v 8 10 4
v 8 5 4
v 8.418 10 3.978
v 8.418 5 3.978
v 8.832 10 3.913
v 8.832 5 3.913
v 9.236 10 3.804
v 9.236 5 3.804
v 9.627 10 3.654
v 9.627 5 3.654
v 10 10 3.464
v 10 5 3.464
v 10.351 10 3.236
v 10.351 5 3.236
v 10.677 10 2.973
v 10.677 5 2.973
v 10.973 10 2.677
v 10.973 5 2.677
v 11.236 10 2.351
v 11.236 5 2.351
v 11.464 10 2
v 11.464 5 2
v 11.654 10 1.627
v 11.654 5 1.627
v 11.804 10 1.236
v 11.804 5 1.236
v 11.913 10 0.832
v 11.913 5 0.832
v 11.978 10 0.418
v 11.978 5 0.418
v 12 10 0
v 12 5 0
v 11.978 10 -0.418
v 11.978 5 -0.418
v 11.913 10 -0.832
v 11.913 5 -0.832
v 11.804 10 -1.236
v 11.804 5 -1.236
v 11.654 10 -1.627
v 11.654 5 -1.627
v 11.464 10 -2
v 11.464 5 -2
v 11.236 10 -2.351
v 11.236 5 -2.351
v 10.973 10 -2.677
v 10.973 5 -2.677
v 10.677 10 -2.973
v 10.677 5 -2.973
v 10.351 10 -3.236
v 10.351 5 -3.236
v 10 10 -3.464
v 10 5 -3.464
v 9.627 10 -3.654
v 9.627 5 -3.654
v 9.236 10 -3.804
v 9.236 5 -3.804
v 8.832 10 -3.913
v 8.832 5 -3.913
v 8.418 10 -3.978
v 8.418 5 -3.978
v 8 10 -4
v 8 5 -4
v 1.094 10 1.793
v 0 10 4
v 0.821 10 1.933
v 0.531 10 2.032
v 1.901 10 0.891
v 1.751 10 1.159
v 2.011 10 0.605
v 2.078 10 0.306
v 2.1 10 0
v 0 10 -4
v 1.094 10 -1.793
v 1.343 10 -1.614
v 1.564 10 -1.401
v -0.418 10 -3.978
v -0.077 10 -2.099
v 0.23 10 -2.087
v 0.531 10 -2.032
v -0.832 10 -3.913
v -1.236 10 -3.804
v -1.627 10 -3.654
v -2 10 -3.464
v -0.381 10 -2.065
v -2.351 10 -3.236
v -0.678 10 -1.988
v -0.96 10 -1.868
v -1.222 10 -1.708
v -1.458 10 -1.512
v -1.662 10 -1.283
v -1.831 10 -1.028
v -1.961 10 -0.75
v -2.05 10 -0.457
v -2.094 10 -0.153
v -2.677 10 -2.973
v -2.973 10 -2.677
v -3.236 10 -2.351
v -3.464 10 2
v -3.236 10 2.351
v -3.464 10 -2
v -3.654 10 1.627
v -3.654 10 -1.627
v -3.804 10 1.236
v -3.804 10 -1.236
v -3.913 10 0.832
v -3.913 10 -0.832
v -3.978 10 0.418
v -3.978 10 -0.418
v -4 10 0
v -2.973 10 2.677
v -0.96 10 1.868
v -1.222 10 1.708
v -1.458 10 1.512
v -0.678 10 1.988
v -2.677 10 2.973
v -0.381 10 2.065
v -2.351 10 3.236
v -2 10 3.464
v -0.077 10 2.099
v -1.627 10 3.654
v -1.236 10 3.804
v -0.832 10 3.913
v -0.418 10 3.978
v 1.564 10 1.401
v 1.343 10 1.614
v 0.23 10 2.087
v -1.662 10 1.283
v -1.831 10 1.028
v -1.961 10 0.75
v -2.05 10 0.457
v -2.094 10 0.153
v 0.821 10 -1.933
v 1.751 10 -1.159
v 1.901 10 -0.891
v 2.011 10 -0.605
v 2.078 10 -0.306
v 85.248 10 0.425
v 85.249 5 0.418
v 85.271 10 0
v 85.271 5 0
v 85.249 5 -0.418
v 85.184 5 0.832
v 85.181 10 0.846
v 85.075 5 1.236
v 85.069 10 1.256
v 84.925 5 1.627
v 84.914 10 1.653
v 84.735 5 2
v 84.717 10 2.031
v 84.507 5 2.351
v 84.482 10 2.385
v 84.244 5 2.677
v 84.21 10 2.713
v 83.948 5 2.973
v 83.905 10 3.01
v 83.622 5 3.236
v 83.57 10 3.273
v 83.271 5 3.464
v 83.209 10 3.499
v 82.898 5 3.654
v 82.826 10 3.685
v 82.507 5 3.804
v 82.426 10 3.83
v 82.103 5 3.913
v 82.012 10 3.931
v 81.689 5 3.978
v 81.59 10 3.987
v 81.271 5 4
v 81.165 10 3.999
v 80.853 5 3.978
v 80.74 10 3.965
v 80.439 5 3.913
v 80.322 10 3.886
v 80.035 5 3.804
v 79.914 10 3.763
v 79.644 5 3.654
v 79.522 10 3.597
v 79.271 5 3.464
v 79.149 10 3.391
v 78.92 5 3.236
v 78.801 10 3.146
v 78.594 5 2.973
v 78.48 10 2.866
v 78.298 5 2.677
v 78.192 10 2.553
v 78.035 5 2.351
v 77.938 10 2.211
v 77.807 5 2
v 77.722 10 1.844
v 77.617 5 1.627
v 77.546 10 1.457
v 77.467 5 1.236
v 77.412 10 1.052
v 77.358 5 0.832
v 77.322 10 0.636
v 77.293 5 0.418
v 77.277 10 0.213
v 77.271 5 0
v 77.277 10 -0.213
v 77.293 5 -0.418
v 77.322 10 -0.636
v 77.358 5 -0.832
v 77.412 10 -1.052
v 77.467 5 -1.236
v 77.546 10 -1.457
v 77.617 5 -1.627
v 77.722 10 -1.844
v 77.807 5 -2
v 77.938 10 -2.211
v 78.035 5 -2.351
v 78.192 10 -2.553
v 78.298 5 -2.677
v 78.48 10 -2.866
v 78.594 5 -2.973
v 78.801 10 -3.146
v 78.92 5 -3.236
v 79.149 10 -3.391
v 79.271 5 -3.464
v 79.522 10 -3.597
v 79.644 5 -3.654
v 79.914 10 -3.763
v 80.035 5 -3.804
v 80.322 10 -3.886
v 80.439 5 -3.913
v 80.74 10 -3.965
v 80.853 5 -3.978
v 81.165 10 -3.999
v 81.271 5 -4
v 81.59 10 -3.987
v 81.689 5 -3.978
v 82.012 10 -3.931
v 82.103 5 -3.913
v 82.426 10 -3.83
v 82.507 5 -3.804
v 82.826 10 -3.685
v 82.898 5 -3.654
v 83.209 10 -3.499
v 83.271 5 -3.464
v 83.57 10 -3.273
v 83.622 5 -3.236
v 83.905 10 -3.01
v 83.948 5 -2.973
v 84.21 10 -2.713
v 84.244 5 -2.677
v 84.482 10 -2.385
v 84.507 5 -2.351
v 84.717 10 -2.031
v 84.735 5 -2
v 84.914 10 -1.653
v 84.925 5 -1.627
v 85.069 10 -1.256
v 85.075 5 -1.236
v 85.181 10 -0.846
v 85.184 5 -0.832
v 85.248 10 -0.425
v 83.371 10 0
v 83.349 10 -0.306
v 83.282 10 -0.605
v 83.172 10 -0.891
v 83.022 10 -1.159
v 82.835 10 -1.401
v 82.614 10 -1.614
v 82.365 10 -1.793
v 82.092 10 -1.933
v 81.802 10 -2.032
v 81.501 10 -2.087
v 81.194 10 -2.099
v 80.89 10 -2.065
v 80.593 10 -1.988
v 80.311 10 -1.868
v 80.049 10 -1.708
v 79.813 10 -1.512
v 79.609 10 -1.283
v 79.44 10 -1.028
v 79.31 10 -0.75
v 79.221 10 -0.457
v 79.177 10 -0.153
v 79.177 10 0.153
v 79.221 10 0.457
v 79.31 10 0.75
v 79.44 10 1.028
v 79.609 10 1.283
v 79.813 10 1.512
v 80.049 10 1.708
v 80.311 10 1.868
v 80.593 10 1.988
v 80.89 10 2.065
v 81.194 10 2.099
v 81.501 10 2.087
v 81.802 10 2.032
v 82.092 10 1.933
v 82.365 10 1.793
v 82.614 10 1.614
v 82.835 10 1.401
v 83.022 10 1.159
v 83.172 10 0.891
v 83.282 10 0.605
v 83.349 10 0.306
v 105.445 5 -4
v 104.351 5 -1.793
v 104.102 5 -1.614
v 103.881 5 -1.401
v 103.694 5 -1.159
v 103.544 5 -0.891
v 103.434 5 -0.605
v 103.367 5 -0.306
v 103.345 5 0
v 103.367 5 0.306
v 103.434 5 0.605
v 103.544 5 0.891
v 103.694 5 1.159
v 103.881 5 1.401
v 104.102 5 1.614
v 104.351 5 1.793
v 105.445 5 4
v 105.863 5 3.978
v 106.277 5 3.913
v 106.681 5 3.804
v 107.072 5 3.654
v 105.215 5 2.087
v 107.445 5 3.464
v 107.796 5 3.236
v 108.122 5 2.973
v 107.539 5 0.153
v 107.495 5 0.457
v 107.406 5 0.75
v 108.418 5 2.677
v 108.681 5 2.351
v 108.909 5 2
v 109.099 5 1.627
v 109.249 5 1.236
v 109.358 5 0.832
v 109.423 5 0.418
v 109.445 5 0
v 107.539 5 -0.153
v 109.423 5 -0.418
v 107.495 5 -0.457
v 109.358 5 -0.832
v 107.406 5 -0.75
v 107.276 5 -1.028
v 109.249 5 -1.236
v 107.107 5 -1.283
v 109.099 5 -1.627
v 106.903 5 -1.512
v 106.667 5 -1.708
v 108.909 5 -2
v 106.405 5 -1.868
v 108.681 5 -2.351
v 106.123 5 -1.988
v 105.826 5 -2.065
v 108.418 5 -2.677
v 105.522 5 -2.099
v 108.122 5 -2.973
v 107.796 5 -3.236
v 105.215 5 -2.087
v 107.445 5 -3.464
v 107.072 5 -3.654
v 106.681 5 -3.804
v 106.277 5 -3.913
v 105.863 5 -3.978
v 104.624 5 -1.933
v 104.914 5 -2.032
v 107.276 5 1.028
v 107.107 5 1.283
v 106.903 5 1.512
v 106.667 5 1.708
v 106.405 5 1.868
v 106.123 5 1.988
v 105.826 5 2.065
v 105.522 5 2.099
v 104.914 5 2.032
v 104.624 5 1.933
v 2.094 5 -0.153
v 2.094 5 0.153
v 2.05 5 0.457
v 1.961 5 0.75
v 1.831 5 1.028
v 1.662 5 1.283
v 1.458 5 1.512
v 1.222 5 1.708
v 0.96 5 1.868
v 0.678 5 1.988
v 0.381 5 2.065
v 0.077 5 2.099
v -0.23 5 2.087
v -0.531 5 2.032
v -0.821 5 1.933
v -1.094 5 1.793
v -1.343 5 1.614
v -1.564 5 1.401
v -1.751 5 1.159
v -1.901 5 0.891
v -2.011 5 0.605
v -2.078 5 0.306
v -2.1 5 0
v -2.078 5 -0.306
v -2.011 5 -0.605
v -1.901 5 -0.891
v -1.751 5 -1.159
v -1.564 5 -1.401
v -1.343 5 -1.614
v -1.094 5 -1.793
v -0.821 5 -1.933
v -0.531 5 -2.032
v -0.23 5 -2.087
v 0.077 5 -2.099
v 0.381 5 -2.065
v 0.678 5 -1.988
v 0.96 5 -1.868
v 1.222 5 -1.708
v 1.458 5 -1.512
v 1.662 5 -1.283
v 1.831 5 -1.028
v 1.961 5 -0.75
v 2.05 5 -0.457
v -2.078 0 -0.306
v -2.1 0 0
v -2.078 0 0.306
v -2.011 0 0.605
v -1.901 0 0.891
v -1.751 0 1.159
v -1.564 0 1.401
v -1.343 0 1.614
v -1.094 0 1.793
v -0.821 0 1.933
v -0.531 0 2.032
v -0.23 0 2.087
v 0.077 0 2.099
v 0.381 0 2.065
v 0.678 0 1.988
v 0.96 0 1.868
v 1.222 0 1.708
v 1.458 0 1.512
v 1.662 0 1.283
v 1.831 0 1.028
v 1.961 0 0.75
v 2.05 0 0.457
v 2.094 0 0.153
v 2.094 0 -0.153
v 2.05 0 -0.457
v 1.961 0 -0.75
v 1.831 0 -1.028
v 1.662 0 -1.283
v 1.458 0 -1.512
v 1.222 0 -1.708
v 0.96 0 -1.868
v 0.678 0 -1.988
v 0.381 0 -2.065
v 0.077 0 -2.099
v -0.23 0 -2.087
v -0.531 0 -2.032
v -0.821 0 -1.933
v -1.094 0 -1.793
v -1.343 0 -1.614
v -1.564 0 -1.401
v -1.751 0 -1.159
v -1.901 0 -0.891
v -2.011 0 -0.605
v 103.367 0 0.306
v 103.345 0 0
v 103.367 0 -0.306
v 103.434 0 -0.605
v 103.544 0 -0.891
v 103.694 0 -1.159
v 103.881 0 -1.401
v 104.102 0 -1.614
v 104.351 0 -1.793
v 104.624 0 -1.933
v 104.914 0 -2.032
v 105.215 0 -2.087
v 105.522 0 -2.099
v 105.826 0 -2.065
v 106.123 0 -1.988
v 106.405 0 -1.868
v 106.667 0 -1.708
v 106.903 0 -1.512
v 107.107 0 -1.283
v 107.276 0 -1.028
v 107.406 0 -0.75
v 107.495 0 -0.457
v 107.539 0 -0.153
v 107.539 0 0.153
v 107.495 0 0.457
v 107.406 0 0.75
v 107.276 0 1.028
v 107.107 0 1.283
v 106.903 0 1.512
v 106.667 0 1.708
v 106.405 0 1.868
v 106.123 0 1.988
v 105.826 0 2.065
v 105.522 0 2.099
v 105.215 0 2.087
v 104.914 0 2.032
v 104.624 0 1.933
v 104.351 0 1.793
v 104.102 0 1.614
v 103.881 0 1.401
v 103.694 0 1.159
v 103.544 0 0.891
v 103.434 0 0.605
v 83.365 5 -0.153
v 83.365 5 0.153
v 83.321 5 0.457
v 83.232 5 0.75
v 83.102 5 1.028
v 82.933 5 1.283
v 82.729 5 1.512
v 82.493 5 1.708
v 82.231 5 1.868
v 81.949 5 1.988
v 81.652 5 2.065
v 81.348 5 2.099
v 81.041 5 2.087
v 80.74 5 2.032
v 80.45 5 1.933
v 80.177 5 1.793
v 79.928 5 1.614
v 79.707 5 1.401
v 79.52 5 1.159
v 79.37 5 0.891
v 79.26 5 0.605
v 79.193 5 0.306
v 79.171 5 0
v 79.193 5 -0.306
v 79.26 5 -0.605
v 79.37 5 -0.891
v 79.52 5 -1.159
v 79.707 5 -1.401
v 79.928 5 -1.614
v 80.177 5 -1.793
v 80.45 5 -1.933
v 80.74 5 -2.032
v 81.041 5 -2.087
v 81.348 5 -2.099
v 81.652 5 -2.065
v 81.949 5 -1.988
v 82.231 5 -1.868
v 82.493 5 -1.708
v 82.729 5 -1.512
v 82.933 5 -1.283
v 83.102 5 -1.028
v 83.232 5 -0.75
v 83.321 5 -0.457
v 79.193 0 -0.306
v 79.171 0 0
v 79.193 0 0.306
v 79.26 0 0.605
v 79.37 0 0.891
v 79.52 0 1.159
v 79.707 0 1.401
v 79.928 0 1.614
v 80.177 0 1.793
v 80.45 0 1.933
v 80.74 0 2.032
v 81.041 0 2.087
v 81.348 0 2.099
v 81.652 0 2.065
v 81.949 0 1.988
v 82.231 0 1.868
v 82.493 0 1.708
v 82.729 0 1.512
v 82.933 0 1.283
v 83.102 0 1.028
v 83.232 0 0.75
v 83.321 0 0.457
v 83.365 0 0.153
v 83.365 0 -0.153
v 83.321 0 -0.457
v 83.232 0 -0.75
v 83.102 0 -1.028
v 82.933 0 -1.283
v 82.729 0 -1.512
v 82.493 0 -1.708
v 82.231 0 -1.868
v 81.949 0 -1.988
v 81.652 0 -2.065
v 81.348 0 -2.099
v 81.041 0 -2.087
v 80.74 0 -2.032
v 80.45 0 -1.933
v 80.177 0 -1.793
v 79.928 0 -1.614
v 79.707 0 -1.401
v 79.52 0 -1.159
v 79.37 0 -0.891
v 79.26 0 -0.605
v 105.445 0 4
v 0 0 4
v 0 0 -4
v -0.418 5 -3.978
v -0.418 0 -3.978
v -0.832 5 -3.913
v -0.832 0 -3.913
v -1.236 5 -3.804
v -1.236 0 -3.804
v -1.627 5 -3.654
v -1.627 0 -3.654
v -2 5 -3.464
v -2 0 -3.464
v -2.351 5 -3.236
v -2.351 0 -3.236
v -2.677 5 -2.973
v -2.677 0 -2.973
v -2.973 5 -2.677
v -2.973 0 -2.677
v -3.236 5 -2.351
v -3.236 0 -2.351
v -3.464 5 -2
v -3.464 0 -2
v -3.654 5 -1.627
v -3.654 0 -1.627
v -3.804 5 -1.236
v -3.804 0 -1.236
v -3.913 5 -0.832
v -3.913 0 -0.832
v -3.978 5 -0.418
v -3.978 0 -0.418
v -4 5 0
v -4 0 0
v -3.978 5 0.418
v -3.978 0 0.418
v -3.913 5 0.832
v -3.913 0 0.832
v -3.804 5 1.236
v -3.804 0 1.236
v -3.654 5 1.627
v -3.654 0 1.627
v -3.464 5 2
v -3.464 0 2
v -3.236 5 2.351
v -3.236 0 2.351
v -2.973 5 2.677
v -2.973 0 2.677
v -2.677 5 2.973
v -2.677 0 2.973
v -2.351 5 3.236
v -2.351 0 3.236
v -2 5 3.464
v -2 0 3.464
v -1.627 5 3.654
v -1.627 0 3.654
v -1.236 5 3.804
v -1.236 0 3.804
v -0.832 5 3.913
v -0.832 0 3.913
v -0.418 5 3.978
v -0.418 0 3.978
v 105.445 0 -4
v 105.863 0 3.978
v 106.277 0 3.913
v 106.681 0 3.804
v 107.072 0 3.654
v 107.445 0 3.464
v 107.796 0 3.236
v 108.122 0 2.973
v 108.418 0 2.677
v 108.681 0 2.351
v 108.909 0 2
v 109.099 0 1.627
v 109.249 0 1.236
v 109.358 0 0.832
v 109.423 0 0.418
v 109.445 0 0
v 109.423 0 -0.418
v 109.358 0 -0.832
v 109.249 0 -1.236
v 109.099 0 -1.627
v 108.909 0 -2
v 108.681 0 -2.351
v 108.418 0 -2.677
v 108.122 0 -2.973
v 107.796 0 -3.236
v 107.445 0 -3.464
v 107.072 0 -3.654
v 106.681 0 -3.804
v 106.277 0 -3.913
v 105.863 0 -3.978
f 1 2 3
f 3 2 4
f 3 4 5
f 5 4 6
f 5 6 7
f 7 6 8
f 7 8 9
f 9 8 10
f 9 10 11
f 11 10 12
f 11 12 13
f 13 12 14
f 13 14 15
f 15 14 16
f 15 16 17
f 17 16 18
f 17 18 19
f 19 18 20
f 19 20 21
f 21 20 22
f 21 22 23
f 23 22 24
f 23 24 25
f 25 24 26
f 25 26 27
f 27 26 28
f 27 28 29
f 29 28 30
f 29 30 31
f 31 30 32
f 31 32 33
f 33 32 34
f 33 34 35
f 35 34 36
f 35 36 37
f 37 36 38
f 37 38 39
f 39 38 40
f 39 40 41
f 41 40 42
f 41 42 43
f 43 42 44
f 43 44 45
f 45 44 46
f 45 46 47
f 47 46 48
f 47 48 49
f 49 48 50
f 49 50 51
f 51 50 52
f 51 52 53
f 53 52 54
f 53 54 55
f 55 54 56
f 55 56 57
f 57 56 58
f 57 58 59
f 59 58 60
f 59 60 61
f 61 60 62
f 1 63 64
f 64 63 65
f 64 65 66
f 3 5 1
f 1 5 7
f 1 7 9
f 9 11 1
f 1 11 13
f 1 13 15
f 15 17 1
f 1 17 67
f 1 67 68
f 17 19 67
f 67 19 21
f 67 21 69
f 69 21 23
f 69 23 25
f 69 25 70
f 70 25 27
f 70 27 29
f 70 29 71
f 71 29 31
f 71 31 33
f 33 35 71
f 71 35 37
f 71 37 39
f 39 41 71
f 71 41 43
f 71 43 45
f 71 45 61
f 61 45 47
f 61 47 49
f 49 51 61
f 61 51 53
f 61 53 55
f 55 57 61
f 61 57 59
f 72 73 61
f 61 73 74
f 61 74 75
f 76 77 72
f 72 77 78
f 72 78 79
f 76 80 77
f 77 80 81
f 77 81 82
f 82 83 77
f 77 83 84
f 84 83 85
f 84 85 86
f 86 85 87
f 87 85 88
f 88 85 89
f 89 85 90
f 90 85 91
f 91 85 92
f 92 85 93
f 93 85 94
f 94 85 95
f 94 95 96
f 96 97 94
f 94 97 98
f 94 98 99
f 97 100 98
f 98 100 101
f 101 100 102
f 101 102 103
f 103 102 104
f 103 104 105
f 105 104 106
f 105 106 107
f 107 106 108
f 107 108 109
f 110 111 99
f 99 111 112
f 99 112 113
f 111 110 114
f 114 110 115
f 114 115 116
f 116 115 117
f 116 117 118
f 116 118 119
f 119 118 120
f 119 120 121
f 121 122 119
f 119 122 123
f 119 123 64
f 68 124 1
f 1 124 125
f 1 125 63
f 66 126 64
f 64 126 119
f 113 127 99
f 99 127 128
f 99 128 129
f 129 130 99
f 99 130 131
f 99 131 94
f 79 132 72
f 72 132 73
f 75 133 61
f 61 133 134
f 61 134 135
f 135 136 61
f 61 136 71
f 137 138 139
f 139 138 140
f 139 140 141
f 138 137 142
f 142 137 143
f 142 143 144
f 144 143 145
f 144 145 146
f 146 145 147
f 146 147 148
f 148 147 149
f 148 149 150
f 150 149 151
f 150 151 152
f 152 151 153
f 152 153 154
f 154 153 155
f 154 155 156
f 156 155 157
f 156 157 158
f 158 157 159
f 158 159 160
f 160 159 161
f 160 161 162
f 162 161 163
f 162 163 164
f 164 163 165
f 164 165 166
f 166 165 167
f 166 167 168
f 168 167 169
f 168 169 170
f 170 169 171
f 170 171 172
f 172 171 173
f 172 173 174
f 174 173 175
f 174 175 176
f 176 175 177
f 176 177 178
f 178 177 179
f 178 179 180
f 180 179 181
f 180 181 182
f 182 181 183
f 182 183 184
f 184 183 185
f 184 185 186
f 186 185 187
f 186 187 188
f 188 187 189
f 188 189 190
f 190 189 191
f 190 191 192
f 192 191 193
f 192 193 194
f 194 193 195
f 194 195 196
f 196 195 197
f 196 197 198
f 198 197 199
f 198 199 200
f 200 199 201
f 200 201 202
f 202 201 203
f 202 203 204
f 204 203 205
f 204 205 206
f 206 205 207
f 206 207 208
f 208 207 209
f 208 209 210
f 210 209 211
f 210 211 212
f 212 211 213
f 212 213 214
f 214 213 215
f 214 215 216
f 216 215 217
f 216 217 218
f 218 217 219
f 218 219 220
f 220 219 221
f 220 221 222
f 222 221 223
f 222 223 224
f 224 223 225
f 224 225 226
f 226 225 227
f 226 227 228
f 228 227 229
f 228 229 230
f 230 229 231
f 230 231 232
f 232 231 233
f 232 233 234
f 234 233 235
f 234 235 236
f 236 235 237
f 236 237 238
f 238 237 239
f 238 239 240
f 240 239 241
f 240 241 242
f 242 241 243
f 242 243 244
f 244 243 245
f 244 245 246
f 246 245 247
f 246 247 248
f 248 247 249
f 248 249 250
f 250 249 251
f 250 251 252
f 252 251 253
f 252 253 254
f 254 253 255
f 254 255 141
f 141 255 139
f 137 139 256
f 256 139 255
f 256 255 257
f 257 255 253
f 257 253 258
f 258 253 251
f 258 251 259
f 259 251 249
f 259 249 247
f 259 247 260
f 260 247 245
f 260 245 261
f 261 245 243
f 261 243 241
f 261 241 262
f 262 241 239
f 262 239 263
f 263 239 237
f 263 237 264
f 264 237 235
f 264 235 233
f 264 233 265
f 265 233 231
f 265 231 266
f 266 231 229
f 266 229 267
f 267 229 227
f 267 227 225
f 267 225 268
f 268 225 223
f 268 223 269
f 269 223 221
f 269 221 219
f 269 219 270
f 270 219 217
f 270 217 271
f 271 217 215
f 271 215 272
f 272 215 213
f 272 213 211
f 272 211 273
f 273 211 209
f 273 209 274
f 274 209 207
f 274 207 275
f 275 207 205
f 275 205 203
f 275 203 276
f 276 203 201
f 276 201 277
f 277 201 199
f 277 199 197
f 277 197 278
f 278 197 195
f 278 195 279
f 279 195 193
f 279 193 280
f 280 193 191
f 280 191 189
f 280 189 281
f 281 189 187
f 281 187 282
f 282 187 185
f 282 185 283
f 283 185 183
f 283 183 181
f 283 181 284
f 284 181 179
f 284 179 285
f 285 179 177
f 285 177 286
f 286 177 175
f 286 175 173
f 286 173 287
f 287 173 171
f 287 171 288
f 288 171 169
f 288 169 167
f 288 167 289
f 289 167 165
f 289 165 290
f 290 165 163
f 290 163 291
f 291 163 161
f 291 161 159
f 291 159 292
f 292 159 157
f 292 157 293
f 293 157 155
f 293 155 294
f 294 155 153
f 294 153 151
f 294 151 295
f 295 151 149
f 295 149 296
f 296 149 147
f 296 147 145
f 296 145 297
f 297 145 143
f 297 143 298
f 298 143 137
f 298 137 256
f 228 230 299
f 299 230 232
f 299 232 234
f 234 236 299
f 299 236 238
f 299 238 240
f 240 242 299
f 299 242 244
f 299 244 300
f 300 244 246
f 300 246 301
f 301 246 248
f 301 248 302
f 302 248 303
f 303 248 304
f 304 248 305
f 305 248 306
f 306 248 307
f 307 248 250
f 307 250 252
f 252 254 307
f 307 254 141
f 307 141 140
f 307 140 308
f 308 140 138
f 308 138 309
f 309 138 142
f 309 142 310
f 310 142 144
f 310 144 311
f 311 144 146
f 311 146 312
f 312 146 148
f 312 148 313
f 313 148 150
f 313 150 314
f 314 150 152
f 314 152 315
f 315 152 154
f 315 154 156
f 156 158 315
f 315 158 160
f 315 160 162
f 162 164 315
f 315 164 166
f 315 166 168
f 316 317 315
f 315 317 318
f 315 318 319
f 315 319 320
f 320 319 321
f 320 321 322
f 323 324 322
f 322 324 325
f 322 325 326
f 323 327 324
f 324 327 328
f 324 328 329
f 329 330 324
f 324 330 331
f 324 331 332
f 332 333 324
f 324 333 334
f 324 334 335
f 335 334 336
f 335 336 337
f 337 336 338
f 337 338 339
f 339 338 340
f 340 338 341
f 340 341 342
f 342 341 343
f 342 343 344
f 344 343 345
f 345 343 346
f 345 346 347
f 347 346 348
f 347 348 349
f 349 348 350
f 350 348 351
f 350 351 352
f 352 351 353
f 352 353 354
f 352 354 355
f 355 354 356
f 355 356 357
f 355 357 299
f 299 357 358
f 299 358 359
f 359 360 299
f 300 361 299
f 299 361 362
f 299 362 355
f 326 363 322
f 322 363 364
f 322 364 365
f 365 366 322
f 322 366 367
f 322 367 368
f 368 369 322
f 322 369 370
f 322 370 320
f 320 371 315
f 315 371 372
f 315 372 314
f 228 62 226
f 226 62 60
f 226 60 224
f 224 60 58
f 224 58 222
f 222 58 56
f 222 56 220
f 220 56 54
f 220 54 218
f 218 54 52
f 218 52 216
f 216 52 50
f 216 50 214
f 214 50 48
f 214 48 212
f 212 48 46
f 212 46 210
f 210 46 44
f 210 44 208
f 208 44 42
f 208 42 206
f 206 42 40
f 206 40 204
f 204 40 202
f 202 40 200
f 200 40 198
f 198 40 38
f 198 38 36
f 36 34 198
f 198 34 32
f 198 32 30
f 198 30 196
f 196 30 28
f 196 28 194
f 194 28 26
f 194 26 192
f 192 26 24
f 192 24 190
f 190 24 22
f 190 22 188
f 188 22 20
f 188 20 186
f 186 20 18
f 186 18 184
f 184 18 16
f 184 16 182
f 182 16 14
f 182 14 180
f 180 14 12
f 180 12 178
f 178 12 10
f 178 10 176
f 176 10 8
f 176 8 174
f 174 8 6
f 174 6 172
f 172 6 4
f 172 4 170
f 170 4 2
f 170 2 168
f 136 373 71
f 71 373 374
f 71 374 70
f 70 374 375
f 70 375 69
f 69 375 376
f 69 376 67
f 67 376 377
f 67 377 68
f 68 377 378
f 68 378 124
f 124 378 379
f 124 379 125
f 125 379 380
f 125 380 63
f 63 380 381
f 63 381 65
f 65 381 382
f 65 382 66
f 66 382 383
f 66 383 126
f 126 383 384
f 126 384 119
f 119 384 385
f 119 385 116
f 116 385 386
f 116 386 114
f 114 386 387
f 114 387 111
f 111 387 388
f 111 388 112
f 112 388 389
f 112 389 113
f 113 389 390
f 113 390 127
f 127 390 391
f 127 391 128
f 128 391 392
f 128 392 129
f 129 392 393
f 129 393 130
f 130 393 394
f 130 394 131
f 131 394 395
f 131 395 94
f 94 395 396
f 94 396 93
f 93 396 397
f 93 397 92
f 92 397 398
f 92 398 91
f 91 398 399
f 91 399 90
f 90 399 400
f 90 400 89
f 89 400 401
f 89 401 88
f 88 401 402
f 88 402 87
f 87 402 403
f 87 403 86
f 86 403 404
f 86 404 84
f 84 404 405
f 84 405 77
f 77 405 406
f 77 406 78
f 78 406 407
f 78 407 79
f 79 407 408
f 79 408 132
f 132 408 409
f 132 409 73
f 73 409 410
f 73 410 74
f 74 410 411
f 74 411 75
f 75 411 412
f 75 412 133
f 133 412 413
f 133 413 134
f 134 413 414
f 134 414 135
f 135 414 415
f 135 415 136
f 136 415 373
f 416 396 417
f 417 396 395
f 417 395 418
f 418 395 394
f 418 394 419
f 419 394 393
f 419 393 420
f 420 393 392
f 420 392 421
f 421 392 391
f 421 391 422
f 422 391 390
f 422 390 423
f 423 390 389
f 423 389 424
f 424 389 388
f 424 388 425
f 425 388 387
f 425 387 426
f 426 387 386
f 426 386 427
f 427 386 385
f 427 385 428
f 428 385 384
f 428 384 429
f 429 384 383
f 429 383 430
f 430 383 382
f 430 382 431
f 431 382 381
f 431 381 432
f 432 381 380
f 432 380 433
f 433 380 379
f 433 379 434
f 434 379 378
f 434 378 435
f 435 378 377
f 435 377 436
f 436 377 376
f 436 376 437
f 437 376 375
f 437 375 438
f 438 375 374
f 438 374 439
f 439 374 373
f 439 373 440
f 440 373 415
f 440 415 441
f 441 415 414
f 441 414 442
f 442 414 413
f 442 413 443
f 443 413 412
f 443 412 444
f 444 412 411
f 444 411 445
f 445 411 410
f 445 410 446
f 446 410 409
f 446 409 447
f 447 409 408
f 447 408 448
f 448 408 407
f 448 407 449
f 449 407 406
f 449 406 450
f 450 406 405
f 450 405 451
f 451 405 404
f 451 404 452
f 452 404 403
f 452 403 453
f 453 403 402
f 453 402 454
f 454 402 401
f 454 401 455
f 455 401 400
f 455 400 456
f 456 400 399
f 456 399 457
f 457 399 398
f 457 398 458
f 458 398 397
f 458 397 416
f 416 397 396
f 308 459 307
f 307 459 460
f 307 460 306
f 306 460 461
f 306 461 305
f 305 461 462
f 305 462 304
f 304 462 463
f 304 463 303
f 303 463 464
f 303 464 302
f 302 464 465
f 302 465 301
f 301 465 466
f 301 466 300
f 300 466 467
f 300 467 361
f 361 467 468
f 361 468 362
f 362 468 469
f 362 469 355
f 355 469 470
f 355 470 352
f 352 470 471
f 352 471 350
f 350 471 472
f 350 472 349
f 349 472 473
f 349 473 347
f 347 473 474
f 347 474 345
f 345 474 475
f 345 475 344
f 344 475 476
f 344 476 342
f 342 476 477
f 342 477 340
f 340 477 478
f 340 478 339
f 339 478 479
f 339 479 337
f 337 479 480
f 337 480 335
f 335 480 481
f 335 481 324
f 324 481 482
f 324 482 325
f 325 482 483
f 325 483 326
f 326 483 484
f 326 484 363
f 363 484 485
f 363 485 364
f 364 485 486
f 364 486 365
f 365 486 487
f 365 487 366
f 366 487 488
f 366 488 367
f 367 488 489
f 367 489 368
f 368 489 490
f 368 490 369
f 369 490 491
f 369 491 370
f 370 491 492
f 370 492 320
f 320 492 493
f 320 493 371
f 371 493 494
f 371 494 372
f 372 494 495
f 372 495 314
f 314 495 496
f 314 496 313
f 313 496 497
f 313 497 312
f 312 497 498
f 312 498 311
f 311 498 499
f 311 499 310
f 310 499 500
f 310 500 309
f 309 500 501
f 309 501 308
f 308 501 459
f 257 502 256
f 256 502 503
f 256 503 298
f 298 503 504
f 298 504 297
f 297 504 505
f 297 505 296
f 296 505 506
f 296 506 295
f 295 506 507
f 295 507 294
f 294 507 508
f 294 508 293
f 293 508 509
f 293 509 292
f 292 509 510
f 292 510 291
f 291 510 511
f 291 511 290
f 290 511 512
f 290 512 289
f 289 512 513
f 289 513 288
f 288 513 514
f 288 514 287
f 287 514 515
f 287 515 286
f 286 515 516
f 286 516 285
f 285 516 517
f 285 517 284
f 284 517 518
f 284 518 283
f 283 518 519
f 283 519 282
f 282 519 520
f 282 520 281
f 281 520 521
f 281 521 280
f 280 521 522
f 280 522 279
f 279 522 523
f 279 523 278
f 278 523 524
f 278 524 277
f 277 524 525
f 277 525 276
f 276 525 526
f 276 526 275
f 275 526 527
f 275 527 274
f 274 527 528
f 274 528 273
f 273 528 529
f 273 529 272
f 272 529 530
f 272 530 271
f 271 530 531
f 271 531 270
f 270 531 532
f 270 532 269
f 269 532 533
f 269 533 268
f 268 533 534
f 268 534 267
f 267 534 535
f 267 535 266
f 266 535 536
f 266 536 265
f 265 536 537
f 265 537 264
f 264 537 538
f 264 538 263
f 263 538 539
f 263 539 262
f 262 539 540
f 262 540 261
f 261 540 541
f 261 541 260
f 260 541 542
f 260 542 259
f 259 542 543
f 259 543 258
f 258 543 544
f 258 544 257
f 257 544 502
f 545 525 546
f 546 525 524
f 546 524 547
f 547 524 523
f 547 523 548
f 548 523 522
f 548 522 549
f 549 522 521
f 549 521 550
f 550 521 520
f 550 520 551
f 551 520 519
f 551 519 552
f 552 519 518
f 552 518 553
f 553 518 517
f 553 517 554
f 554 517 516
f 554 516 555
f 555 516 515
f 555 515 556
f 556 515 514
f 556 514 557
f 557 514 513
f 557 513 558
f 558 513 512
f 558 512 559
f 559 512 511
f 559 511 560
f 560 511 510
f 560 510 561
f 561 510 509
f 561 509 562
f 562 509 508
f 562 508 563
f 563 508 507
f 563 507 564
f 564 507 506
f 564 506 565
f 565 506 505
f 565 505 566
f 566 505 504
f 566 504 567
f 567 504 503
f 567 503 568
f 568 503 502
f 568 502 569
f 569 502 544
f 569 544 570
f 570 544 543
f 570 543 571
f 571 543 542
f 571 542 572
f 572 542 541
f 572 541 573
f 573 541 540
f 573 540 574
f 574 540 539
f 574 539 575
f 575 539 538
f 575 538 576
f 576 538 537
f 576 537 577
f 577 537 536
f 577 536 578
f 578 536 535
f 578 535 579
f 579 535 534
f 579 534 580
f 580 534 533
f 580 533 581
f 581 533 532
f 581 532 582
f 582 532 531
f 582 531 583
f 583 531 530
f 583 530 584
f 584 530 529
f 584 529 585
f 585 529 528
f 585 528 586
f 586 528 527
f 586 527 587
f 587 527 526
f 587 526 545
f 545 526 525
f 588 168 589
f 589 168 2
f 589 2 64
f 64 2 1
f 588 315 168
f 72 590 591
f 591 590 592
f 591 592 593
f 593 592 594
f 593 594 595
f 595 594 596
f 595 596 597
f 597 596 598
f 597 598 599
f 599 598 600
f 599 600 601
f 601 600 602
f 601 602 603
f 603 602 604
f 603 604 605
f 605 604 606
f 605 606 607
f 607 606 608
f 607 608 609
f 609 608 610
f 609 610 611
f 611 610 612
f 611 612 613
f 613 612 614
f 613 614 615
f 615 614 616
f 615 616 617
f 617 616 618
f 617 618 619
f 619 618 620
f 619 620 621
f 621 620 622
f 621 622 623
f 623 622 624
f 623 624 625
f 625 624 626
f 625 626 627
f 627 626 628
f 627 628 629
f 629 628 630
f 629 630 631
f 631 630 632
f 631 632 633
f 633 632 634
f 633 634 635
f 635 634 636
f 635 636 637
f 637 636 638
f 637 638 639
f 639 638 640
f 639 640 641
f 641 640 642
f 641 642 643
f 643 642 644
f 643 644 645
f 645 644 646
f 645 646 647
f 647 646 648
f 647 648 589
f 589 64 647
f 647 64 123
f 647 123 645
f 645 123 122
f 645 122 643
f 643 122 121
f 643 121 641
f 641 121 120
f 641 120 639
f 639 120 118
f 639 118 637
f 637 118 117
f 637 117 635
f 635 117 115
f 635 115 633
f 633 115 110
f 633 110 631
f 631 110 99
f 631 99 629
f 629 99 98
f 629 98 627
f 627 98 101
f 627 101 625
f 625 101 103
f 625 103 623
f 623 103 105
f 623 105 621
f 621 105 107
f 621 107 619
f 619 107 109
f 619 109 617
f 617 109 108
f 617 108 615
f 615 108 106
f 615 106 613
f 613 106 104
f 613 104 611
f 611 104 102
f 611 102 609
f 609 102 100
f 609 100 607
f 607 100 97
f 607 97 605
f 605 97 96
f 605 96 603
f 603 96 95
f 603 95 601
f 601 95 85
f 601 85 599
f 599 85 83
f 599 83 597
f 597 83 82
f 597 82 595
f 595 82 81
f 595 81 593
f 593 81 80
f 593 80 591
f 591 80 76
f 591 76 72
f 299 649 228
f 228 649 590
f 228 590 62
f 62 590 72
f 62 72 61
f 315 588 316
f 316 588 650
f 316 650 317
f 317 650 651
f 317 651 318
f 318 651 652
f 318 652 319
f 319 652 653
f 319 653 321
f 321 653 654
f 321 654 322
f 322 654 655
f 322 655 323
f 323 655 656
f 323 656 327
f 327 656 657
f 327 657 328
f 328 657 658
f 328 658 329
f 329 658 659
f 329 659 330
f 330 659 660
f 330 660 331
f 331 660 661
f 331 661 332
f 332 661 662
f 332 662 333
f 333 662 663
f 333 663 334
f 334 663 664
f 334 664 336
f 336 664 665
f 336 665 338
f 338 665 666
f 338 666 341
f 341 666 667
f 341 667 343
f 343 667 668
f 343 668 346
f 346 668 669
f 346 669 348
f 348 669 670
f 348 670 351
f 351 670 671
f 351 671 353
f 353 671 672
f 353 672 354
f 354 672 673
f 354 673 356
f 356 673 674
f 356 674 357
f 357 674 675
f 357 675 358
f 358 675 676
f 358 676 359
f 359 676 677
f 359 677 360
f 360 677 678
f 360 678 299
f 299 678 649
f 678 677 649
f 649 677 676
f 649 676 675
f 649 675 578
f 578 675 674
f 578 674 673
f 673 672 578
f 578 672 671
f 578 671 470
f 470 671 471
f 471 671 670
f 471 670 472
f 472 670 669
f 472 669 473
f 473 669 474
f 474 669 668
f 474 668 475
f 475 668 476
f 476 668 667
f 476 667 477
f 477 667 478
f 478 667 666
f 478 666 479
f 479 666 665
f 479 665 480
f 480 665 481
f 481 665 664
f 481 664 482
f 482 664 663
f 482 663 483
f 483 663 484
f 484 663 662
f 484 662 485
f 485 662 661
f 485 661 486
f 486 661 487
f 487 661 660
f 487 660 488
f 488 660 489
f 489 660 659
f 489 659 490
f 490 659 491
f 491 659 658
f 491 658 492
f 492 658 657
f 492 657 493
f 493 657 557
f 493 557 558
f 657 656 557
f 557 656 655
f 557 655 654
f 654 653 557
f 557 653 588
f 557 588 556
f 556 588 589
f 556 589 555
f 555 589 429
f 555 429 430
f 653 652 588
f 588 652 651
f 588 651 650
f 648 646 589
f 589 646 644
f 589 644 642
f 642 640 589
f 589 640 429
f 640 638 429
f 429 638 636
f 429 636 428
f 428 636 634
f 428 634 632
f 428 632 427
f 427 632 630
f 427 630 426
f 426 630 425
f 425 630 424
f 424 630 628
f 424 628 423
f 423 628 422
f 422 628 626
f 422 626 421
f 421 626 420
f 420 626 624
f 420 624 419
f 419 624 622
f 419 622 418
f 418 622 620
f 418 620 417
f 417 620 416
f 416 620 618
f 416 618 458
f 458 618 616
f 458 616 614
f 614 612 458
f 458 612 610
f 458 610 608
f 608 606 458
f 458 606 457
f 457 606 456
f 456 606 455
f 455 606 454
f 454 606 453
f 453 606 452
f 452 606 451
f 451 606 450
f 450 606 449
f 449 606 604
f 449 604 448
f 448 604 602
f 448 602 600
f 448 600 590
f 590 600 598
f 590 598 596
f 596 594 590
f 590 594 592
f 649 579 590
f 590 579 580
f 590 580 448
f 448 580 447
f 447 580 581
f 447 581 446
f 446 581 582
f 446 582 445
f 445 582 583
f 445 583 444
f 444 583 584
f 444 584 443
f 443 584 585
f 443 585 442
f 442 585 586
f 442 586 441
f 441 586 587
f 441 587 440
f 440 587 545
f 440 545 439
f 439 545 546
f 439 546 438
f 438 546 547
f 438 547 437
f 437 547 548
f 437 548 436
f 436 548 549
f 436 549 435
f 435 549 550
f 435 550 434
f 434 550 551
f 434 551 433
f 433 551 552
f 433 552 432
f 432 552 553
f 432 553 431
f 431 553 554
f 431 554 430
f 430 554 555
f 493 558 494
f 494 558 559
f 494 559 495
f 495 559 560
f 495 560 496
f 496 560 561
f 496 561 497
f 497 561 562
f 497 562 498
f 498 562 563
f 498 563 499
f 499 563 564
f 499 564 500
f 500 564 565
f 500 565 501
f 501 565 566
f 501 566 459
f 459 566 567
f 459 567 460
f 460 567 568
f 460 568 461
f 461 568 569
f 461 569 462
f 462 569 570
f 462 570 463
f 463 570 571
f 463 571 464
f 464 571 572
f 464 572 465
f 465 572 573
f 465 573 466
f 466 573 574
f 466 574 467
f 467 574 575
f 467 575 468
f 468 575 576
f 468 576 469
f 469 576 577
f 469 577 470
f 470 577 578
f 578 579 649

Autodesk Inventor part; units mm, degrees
ref_plane "YZ Plane" through (0, 0, 0) normal (1, 0, 0) x (0, 1, 0)
ref_plane "XZ Plane" through (0, 0, 0) normal (0, 1, 0) x (-1, 0, 0)
ref_plane "XY Plane" through (0, 0, 0) normal (0, 0, 1) x (1, 0, 0)
sketch "Sketch1" plane through (0, 0, 0) normal (0, 1, 0) x (-1, 0, 0)
  line L0 (0, 0) -> (-105.445, 0) construction
  line L1 (0, 4) -> (-105.445, 4)
  line L2 (-105.445, -4) -> (0, -4)
  arc A0 (0, -4) -> (0, 4) centre (0, 0) ccw
  arc A1 (-105.445, 4) -> (-105.445, -4) centre (-105.445, 0) ccw
  circle A2 centre (0, 0) radius 2.1
  circle A3 centre (-81.271, 0) radius 2.1
  circle A4 centre (-105.445, 0) radius 2.1
  point P0 (-52.7225, 0)
  point P1 (-52.7225, 0)
  dimension "d0" = 105.445
  dimension "d1" = 8
  dimension "d2" = 4.2
  dimension "d8" = 4.2
  dimension "d9" = 81.271
  dimension "d10" = 4.2
extrude "Extrusion1" add sketch "Sketch1" along normal blind 5
sketch "Sketch2" plane through (0, 5, 0) normal (0, 1, 0) x (1, 0, 0)
  arc A0 (105.445, -4) -> (105.445, 4) centre (105.445, 0) ccw projected
  line L0 (105.445, 4) -> (0, 4) projected
  arc A1 (0, 4) -> (0, -4) centre (0, 0) ccw projected
  line L1 (0, -4) -> (105.445, -4) projected
  circle A2 centre (81.271, 0) radius 2.1 projected
  circle A3 centre (105.445, 0) radius 2.1 projected
  circle A4 centre (0, 0) radius 2.1 projected
  circle A5 centre (8, 0) radius 4
  line L2 (0, -4) -> (105.445, -4) projected
  circle A6 centre (97.445, 0) radius 4
  circle A7 centre (81.271, 0) radius 4
  point P0 (97.445, -4)
  point P1 (97.445, 4)
  point P2 (8, -4)
  point P3 (8, 4)
  dimension "d11" = 8
  dimension "d12" = 8
  dimension "d13" = 8
  dimension "d28" = 8
extrude "Extrusion7" add sketch "Sketch2" along normal blind 5 contours A7 | L1 A1 L0 A5 | A5
